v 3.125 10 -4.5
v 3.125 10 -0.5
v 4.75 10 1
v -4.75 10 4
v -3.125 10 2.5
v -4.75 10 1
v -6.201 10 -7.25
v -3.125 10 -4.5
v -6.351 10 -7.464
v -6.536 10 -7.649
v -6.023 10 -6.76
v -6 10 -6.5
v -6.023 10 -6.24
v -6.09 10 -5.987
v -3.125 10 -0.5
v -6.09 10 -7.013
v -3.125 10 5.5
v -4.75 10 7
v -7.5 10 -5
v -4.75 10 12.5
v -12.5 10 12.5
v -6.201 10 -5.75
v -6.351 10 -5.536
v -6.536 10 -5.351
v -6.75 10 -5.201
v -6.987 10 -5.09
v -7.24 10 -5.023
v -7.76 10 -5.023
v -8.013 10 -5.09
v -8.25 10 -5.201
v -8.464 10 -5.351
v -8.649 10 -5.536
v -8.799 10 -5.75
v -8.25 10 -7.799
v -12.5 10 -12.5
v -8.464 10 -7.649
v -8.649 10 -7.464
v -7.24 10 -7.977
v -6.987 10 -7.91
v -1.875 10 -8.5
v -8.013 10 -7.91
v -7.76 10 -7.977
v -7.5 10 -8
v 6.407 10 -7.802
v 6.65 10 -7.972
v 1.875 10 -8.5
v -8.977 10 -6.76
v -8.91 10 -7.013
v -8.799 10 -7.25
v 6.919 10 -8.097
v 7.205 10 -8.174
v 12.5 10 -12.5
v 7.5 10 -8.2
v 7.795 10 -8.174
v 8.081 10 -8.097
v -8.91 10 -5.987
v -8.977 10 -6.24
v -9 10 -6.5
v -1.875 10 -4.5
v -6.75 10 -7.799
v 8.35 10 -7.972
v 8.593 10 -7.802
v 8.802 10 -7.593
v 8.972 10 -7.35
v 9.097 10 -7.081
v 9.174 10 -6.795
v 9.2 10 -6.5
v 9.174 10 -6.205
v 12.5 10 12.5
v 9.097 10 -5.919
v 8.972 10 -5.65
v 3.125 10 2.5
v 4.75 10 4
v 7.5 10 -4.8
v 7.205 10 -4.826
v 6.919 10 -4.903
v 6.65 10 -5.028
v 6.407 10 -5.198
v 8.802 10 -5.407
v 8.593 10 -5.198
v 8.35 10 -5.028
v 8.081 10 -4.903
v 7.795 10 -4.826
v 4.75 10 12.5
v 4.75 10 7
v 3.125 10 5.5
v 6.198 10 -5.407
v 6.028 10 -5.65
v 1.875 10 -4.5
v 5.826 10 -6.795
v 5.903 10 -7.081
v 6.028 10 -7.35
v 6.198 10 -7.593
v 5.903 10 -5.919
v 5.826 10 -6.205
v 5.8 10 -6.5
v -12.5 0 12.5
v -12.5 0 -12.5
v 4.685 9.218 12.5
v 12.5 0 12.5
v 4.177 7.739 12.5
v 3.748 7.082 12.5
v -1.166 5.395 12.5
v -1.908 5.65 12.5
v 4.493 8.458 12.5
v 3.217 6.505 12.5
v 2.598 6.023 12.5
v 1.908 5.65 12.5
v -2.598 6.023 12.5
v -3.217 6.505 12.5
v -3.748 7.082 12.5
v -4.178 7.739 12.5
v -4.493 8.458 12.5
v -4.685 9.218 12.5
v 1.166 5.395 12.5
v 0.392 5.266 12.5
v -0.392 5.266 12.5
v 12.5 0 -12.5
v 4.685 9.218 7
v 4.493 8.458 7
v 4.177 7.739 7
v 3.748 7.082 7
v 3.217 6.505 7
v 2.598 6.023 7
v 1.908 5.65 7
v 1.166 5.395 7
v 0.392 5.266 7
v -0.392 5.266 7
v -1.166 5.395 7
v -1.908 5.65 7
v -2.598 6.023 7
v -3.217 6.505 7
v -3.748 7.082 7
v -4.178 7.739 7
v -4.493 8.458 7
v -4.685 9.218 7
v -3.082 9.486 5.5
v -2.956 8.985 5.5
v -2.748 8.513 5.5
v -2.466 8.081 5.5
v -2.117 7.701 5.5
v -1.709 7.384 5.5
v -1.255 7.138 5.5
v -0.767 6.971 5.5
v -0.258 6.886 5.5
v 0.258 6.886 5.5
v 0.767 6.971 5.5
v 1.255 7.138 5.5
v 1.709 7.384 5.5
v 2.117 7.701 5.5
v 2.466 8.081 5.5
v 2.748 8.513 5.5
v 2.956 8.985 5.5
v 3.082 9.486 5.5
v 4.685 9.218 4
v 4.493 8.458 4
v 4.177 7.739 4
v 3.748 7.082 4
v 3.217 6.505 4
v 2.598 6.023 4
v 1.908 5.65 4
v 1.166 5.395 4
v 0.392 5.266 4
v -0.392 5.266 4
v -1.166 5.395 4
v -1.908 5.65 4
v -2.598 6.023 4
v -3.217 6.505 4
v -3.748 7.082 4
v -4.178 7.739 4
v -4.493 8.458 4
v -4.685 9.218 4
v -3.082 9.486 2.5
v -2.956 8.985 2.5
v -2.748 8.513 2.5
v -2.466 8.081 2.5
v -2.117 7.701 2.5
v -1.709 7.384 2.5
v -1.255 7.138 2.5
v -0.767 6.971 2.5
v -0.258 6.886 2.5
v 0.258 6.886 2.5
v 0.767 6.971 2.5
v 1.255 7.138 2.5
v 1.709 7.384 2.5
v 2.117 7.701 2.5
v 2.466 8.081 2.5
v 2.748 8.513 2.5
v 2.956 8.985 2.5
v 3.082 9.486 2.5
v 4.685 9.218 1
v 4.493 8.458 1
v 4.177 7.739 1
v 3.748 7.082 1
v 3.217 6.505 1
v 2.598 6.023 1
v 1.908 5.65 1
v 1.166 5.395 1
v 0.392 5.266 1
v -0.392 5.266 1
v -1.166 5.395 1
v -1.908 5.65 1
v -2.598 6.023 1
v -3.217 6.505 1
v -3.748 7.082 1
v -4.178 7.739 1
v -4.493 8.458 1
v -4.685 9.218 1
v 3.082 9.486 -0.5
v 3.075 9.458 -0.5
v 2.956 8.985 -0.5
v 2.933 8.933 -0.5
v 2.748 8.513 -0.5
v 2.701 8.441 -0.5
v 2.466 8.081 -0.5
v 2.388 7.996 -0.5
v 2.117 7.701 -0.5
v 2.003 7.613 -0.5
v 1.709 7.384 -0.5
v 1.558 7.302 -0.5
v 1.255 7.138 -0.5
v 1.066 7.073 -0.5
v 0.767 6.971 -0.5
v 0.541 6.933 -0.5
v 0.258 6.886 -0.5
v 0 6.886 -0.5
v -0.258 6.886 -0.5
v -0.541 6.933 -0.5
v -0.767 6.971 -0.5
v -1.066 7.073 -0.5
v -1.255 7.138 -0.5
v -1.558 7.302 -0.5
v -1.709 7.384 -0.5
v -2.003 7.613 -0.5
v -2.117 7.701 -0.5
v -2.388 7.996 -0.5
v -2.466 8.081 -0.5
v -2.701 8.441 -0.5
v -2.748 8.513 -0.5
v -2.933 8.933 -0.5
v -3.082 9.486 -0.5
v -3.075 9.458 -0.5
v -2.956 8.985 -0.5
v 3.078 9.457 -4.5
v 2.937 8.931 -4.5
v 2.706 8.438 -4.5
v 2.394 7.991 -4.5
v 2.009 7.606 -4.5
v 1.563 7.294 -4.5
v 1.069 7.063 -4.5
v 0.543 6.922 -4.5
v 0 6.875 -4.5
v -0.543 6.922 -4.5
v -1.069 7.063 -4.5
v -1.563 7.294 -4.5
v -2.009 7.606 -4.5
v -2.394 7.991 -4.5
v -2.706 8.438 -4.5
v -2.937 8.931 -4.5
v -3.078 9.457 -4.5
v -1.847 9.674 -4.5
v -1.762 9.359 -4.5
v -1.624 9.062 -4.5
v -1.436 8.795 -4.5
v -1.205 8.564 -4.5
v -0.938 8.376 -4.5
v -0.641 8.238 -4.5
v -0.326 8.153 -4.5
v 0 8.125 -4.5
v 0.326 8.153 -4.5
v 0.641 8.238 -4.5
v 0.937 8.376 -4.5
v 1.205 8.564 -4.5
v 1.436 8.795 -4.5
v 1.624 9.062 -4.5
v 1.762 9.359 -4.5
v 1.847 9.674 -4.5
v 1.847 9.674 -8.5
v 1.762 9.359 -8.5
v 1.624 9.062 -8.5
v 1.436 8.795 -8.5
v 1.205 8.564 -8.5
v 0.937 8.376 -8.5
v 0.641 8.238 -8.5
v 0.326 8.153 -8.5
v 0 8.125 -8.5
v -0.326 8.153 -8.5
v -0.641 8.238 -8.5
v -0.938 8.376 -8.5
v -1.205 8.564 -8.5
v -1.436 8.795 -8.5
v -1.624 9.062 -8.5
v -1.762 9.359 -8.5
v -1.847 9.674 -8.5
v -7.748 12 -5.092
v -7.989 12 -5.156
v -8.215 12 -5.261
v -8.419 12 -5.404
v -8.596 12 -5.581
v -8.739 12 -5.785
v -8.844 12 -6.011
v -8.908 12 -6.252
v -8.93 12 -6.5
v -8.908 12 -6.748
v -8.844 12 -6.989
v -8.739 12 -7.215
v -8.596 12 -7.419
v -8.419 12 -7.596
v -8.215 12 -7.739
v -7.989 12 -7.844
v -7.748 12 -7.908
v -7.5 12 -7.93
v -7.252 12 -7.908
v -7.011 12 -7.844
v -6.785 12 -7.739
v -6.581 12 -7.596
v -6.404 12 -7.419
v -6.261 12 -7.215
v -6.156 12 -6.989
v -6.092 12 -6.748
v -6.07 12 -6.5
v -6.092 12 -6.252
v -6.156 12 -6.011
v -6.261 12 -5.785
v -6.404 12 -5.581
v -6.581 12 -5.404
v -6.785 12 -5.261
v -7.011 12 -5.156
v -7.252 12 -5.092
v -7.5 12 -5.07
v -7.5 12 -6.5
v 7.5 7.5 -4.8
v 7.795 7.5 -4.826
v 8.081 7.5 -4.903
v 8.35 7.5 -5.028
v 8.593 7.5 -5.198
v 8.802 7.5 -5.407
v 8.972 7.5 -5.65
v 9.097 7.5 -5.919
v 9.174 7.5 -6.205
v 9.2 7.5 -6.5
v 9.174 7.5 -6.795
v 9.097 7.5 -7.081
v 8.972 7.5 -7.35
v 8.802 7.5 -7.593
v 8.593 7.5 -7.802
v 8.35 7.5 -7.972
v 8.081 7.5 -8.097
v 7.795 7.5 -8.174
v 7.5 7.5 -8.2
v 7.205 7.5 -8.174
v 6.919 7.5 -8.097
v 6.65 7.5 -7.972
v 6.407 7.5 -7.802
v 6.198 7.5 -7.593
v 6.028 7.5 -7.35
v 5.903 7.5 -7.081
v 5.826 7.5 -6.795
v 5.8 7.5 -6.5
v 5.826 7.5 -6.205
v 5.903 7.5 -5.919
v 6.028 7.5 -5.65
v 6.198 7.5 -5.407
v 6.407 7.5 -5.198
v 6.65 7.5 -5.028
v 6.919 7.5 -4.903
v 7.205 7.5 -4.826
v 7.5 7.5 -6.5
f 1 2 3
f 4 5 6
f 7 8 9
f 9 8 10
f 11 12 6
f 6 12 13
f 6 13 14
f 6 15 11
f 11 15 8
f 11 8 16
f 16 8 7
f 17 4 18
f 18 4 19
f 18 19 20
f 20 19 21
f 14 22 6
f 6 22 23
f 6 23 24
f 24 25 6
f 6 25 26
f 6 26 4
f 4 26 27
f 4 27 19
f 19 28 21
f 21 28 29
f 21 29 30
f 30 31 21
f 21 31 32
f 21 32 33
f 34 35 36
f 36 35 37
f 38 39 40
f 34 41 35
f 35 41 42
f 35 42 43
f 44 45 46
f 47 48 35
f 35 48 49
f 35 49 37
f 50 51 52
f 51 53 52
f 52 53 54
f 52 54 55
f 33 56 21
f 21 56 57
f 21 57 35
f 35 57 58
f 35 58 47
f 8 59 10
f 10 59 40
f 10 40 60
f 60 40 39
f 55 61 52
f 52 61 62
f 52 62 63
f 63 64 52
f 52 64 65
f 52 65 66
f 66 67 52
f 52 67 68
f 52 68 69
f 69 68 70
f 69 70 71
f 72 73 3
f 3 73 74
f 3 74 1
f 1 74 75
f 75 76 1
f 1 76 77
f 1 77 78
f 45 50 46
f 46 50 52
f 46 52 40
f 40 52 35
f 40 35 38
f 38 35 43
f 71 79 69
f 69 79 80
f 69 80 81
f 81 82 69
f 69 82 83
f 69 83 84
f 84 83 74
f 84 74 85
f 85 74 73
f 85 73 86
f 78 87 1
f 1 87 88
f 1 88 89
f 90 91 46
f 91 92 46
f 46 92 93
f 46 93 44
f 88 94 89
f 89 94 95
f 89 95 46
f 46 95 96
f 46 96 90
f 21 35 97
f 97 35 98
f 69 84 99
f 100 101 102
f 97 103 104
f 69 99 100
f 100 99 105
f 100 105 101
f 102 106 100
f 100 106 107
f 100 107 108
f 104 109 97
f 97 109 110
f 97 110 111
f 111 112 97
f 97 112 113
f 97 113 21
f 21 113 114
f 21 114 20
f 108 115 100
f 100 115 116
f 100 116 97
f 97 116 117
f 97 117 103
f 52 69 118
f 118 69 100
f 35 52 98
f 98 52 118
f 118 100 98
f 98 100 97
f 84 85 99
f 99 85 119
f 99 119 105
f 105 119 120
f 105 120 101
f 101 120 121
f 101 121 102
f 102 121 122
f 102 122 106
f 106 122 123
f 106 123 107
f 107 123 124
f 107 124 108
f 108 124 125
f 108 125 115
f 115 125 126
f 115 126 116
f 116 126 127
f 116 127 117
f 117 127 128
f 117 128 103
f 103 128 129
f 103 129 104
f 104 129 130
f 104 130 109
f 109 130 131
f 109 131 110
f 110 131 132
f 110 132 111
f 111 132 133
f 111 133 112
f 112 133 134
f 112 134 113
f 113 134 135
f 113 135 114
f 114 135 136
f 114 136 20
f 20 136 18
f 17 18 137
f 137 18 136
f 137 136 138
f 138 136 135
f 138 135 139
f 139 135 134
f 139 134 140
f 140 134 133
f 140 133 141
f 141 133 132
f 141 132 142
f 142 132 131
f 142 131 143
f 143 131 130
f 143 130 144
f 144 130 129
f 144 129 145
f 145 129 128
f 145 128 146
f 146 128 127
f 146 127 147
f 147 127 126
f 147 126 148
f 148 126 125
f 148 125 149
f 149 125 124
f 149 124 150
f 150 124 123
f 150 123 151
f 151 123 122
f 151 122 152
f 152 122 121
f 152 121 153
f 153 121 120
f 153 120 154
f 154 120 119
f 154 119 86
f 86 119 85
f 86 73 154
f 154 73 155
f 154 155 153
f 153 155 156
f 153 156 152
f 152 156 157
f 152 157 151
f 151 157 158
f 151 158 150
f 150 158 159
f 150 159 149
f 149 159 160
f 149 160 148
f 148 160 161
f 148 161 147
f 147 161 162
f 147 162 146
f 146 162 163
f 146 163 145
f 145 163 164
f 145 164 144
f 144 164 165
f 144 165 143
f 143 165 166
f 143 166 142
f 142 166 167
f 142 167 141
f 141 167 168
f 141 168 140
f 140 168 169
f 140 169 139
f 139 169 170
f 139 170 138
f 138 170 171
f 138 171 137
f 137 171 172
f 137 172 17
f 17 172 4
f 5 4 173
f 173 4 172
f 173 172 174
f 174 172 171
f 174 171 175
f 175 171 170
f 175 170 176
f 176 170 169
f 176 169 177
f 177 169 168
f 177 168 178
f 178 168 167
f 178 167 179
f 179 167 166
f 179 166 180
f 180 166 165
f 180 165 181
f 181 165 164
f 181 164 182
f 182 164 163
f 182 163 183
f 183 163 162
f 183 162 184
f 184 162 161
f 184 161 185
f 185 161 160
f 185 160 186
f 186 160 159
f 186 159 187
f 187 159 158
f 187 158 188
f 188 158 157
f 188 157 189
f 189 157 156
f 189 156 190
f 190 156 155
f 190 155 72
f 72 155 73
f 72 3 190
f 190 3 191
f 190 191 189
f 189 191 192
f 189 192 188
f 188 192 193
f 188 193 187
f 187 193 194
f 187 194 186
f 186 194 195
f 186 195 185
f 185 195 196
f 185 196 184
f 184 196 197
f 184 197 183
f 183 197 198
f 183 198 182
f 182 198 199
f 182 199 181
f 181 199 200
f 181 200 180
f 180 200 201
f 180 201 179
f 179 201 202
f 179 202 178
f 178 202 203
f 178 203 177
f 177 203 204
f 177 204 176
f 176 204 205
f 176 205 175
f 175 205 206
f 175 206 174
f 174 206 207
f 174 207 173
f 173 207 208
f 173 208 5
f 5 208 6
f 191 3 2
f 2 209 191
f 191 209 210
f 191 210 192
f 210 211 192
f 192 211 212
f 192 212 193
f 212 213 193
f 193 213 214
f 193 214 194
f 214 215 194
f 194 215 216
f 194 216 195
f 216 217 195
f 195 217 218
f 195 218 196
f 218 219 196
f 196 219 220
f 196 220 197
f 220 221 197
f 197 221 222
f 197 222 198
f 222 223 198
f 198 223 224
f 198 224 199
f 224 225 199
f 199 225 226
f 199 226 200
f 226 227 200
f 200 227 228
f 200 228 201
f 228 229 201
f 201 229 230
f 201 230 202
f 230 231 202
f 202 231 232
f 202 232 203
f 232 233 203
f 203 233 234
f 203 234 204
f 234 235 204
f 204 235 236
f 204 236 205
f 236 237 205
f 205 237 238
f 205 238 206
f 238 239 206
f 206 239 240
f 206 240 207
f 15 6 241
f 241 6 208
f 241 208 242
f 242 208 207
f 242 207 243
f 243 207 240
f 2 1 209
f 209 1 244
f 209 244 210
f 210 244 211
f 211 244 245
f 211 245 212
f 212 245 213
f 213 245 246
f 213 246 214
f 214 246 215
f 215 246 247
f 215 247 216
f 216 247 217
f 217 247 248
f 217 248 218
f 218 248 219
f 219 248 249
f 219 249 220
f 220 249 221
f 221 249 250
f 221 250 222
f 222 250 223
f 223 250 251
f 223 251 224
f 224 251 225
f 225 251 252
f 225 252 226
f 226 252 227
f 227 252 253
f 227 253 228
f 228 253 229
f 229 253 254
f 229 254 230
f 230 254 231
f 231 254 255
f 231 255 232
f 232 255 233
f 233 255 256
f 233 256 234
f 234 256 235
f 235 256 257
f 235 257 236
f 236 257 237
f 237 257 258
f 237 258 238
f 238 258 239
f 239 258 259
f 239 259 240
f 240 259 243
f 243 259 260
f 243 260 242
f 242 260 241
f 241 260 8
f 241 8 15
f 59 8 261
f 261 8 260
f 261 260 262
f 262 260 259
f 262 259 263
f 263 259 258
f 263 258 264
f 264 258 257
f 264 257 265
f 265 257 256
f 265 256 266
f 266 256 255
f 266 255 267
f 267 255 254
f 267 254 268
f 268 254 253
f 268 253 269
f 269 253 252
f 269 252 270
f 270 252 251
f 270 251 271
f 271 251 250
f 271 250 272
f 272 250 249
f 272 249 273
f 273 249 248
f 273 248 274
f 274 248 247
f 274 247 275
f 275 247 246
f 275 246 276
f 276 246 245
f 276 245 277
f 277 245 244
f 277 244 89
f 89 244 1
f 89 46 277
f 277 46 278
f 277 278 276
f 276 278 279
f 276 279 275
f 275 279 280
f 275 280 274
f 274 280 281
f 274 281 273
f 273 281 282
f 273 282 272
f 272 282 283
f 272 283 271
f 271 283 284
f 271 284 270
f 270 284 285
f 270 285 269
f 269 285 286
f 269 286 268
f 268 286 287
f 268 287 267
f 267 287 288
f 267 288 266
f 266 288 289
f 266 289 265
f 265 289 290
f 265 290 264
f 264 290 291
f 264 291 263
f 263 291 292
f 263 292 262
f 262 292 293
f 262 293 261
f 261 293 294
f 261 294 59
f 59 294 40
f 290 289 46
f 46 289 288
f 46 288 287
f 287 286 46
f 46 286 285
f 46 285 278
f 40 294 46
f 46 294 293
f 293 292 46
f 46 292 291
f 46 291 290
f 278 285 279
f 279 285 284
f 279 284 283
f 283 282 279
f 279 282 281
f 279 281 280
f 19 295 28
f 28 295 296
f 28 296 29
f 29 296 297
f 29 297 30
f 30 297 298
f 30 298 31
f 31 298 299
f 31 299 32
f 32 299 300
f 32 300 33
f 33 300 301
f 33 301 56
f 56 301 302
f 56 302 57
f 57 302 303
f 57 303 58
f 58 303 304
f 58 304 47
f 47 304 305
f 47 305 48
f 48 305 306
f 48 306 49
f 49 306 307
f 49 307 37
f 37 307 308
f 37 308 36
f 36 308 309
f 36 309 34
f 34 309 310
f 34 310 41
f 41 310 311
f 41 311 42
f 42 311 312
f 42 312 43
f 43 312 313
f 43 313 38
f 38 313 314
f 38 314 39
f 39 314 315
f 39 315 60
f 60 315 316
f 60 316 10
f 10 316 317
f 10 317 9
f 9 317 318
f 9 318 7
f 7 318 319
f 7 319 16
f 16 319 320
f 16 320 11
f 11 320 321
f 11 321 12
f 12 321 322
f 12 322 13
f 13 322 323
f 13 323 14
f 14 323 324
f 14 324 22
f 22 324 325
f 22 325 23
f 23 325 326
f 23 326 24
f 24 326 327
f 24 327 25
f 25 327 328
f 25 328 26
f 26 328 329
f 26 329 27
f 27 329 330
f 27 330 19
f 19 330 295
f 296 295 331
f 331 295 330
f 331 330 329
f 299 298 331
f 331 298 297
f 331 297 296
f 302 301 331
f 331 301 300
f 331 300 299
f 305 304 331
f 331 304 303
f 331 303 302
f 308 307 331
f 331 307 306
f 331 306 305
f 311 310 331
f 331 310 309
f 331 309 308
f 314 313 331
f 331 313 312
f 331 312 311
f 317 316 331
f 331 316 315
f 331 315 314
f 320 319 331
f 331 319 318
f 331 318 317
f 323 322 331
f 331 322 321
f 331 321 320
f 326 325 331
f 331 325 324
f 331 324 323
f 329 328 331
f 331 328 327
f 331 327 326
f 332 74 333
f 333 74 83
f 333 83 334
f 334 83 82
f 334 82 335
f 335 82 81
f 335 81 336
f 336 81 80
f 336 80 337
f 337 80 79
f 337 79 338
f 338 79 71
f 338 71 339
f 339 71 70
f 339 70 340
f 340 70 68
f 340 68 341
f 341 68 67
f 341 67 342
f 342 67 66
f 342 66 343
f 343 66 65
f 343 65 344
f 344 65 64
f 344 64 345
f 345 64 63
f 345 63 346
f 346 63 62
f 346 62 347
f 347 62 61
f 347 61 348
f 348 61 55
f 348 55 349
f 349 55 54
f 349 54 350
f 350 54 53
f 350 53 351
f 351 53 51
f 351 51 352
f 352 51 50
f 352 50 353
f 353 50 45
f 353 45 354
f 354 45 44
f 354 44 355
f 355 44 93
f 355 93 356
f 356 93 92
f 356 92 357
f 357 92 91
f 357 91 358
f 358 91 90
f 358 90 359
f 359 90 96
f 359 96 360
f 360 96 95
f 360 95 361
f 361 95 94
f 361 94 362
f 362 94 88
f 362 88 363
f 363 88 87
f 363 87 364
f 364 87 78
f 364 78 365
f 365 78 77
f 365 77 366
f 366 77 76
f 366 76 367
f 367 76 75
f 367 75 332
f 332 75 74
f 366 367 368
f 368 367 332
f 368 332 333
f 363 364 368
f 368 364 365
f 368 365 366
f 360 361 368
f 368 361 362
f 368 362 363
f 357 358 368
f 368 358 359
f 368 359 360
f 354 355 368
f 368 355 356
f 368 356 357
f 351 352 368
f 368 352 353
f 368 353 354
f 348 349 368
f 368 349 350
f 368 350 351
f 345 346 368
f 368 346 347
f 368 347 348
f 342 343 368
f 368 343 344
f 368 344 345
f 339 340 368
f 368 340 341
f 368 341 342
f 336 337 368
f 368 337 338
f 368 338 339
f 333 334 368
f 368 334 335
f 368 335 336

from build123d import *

# Parameters (mm, degrees)
SKETCH2_W           = 25
SKETCH2_H           = 25
BOSS_EXTRUDE1_DEPTH = 10
SKETCH4_R           = 1.5
BOSS_EXTRUDE2_DEPTH = 2
BOSS_EXTRUDE2_TAPER = 2
SKETCH5_R           = 1.7
CUT_EXTRUDE1_DEPTH  = 2.5


with BuildPart() as part:
    # Sketch2 → Boss-Extrude1 (new body)
    with BuildSketch(Plane(origin=(0, 0, 0), x_dir=(1, 0, 0), z_dir=(0, 1, 0))):
        Rectangle(SKETCH2_W, SKETCH2_H)
    extrude(amount=BOSS_EXTRUDE1_DEPTH)

    # Sketch3 → Cut-Revolve1 (revolve, cut)
    with BuildSketch(Plane(origin=(0, 10, 0), x_dir=(1, 0, 0), z_dir=(0, 1, 0))):
        Polygon((0, -12.5), (4.75, -12.5), (4.75, -7), (3.125, -5.5), (4.75, -4), (3.125, -2.5), (4.75, -1), (3.125, 0.5), (3.125, 4.5), (1.875, 4.5), (1.875, 8.5), (0, 8.5), align=None)
    revolve(axis=Axis((0, 10, -12.5), (0, 0, 1)), mode=Mode.SUBTRACT)

    # Sketch4 → Boss-Extrude2 (add)
    with BuildSketch(Plane(origin=(0, 10, 0), x_dir=(1, 0, 0), z_dir=(0, 1, 0))):
        with Locations((-7.5, 6.5)):
            Circle(SKETCH4_R)
    extrude(amount=BOSS_EXTRUDE2_DEPTH, taper=BOSS_EXTRUDE2_TAPER)

    # Sketch5 → Cut-Extrude1 (cut)
    with BuildSketch(Plane(origin=(0, 10, 0), x_dir=(1, 0, 0), z_dir=(0, 1, 0))):
        with Locations((7.5, 6.5)):
            Circle(SKETCH5_R)
    extrude(amount=-CUT_EXTRUDE1_DEPTH, mode=Mode.SUBTRACT)


solid = part.part
